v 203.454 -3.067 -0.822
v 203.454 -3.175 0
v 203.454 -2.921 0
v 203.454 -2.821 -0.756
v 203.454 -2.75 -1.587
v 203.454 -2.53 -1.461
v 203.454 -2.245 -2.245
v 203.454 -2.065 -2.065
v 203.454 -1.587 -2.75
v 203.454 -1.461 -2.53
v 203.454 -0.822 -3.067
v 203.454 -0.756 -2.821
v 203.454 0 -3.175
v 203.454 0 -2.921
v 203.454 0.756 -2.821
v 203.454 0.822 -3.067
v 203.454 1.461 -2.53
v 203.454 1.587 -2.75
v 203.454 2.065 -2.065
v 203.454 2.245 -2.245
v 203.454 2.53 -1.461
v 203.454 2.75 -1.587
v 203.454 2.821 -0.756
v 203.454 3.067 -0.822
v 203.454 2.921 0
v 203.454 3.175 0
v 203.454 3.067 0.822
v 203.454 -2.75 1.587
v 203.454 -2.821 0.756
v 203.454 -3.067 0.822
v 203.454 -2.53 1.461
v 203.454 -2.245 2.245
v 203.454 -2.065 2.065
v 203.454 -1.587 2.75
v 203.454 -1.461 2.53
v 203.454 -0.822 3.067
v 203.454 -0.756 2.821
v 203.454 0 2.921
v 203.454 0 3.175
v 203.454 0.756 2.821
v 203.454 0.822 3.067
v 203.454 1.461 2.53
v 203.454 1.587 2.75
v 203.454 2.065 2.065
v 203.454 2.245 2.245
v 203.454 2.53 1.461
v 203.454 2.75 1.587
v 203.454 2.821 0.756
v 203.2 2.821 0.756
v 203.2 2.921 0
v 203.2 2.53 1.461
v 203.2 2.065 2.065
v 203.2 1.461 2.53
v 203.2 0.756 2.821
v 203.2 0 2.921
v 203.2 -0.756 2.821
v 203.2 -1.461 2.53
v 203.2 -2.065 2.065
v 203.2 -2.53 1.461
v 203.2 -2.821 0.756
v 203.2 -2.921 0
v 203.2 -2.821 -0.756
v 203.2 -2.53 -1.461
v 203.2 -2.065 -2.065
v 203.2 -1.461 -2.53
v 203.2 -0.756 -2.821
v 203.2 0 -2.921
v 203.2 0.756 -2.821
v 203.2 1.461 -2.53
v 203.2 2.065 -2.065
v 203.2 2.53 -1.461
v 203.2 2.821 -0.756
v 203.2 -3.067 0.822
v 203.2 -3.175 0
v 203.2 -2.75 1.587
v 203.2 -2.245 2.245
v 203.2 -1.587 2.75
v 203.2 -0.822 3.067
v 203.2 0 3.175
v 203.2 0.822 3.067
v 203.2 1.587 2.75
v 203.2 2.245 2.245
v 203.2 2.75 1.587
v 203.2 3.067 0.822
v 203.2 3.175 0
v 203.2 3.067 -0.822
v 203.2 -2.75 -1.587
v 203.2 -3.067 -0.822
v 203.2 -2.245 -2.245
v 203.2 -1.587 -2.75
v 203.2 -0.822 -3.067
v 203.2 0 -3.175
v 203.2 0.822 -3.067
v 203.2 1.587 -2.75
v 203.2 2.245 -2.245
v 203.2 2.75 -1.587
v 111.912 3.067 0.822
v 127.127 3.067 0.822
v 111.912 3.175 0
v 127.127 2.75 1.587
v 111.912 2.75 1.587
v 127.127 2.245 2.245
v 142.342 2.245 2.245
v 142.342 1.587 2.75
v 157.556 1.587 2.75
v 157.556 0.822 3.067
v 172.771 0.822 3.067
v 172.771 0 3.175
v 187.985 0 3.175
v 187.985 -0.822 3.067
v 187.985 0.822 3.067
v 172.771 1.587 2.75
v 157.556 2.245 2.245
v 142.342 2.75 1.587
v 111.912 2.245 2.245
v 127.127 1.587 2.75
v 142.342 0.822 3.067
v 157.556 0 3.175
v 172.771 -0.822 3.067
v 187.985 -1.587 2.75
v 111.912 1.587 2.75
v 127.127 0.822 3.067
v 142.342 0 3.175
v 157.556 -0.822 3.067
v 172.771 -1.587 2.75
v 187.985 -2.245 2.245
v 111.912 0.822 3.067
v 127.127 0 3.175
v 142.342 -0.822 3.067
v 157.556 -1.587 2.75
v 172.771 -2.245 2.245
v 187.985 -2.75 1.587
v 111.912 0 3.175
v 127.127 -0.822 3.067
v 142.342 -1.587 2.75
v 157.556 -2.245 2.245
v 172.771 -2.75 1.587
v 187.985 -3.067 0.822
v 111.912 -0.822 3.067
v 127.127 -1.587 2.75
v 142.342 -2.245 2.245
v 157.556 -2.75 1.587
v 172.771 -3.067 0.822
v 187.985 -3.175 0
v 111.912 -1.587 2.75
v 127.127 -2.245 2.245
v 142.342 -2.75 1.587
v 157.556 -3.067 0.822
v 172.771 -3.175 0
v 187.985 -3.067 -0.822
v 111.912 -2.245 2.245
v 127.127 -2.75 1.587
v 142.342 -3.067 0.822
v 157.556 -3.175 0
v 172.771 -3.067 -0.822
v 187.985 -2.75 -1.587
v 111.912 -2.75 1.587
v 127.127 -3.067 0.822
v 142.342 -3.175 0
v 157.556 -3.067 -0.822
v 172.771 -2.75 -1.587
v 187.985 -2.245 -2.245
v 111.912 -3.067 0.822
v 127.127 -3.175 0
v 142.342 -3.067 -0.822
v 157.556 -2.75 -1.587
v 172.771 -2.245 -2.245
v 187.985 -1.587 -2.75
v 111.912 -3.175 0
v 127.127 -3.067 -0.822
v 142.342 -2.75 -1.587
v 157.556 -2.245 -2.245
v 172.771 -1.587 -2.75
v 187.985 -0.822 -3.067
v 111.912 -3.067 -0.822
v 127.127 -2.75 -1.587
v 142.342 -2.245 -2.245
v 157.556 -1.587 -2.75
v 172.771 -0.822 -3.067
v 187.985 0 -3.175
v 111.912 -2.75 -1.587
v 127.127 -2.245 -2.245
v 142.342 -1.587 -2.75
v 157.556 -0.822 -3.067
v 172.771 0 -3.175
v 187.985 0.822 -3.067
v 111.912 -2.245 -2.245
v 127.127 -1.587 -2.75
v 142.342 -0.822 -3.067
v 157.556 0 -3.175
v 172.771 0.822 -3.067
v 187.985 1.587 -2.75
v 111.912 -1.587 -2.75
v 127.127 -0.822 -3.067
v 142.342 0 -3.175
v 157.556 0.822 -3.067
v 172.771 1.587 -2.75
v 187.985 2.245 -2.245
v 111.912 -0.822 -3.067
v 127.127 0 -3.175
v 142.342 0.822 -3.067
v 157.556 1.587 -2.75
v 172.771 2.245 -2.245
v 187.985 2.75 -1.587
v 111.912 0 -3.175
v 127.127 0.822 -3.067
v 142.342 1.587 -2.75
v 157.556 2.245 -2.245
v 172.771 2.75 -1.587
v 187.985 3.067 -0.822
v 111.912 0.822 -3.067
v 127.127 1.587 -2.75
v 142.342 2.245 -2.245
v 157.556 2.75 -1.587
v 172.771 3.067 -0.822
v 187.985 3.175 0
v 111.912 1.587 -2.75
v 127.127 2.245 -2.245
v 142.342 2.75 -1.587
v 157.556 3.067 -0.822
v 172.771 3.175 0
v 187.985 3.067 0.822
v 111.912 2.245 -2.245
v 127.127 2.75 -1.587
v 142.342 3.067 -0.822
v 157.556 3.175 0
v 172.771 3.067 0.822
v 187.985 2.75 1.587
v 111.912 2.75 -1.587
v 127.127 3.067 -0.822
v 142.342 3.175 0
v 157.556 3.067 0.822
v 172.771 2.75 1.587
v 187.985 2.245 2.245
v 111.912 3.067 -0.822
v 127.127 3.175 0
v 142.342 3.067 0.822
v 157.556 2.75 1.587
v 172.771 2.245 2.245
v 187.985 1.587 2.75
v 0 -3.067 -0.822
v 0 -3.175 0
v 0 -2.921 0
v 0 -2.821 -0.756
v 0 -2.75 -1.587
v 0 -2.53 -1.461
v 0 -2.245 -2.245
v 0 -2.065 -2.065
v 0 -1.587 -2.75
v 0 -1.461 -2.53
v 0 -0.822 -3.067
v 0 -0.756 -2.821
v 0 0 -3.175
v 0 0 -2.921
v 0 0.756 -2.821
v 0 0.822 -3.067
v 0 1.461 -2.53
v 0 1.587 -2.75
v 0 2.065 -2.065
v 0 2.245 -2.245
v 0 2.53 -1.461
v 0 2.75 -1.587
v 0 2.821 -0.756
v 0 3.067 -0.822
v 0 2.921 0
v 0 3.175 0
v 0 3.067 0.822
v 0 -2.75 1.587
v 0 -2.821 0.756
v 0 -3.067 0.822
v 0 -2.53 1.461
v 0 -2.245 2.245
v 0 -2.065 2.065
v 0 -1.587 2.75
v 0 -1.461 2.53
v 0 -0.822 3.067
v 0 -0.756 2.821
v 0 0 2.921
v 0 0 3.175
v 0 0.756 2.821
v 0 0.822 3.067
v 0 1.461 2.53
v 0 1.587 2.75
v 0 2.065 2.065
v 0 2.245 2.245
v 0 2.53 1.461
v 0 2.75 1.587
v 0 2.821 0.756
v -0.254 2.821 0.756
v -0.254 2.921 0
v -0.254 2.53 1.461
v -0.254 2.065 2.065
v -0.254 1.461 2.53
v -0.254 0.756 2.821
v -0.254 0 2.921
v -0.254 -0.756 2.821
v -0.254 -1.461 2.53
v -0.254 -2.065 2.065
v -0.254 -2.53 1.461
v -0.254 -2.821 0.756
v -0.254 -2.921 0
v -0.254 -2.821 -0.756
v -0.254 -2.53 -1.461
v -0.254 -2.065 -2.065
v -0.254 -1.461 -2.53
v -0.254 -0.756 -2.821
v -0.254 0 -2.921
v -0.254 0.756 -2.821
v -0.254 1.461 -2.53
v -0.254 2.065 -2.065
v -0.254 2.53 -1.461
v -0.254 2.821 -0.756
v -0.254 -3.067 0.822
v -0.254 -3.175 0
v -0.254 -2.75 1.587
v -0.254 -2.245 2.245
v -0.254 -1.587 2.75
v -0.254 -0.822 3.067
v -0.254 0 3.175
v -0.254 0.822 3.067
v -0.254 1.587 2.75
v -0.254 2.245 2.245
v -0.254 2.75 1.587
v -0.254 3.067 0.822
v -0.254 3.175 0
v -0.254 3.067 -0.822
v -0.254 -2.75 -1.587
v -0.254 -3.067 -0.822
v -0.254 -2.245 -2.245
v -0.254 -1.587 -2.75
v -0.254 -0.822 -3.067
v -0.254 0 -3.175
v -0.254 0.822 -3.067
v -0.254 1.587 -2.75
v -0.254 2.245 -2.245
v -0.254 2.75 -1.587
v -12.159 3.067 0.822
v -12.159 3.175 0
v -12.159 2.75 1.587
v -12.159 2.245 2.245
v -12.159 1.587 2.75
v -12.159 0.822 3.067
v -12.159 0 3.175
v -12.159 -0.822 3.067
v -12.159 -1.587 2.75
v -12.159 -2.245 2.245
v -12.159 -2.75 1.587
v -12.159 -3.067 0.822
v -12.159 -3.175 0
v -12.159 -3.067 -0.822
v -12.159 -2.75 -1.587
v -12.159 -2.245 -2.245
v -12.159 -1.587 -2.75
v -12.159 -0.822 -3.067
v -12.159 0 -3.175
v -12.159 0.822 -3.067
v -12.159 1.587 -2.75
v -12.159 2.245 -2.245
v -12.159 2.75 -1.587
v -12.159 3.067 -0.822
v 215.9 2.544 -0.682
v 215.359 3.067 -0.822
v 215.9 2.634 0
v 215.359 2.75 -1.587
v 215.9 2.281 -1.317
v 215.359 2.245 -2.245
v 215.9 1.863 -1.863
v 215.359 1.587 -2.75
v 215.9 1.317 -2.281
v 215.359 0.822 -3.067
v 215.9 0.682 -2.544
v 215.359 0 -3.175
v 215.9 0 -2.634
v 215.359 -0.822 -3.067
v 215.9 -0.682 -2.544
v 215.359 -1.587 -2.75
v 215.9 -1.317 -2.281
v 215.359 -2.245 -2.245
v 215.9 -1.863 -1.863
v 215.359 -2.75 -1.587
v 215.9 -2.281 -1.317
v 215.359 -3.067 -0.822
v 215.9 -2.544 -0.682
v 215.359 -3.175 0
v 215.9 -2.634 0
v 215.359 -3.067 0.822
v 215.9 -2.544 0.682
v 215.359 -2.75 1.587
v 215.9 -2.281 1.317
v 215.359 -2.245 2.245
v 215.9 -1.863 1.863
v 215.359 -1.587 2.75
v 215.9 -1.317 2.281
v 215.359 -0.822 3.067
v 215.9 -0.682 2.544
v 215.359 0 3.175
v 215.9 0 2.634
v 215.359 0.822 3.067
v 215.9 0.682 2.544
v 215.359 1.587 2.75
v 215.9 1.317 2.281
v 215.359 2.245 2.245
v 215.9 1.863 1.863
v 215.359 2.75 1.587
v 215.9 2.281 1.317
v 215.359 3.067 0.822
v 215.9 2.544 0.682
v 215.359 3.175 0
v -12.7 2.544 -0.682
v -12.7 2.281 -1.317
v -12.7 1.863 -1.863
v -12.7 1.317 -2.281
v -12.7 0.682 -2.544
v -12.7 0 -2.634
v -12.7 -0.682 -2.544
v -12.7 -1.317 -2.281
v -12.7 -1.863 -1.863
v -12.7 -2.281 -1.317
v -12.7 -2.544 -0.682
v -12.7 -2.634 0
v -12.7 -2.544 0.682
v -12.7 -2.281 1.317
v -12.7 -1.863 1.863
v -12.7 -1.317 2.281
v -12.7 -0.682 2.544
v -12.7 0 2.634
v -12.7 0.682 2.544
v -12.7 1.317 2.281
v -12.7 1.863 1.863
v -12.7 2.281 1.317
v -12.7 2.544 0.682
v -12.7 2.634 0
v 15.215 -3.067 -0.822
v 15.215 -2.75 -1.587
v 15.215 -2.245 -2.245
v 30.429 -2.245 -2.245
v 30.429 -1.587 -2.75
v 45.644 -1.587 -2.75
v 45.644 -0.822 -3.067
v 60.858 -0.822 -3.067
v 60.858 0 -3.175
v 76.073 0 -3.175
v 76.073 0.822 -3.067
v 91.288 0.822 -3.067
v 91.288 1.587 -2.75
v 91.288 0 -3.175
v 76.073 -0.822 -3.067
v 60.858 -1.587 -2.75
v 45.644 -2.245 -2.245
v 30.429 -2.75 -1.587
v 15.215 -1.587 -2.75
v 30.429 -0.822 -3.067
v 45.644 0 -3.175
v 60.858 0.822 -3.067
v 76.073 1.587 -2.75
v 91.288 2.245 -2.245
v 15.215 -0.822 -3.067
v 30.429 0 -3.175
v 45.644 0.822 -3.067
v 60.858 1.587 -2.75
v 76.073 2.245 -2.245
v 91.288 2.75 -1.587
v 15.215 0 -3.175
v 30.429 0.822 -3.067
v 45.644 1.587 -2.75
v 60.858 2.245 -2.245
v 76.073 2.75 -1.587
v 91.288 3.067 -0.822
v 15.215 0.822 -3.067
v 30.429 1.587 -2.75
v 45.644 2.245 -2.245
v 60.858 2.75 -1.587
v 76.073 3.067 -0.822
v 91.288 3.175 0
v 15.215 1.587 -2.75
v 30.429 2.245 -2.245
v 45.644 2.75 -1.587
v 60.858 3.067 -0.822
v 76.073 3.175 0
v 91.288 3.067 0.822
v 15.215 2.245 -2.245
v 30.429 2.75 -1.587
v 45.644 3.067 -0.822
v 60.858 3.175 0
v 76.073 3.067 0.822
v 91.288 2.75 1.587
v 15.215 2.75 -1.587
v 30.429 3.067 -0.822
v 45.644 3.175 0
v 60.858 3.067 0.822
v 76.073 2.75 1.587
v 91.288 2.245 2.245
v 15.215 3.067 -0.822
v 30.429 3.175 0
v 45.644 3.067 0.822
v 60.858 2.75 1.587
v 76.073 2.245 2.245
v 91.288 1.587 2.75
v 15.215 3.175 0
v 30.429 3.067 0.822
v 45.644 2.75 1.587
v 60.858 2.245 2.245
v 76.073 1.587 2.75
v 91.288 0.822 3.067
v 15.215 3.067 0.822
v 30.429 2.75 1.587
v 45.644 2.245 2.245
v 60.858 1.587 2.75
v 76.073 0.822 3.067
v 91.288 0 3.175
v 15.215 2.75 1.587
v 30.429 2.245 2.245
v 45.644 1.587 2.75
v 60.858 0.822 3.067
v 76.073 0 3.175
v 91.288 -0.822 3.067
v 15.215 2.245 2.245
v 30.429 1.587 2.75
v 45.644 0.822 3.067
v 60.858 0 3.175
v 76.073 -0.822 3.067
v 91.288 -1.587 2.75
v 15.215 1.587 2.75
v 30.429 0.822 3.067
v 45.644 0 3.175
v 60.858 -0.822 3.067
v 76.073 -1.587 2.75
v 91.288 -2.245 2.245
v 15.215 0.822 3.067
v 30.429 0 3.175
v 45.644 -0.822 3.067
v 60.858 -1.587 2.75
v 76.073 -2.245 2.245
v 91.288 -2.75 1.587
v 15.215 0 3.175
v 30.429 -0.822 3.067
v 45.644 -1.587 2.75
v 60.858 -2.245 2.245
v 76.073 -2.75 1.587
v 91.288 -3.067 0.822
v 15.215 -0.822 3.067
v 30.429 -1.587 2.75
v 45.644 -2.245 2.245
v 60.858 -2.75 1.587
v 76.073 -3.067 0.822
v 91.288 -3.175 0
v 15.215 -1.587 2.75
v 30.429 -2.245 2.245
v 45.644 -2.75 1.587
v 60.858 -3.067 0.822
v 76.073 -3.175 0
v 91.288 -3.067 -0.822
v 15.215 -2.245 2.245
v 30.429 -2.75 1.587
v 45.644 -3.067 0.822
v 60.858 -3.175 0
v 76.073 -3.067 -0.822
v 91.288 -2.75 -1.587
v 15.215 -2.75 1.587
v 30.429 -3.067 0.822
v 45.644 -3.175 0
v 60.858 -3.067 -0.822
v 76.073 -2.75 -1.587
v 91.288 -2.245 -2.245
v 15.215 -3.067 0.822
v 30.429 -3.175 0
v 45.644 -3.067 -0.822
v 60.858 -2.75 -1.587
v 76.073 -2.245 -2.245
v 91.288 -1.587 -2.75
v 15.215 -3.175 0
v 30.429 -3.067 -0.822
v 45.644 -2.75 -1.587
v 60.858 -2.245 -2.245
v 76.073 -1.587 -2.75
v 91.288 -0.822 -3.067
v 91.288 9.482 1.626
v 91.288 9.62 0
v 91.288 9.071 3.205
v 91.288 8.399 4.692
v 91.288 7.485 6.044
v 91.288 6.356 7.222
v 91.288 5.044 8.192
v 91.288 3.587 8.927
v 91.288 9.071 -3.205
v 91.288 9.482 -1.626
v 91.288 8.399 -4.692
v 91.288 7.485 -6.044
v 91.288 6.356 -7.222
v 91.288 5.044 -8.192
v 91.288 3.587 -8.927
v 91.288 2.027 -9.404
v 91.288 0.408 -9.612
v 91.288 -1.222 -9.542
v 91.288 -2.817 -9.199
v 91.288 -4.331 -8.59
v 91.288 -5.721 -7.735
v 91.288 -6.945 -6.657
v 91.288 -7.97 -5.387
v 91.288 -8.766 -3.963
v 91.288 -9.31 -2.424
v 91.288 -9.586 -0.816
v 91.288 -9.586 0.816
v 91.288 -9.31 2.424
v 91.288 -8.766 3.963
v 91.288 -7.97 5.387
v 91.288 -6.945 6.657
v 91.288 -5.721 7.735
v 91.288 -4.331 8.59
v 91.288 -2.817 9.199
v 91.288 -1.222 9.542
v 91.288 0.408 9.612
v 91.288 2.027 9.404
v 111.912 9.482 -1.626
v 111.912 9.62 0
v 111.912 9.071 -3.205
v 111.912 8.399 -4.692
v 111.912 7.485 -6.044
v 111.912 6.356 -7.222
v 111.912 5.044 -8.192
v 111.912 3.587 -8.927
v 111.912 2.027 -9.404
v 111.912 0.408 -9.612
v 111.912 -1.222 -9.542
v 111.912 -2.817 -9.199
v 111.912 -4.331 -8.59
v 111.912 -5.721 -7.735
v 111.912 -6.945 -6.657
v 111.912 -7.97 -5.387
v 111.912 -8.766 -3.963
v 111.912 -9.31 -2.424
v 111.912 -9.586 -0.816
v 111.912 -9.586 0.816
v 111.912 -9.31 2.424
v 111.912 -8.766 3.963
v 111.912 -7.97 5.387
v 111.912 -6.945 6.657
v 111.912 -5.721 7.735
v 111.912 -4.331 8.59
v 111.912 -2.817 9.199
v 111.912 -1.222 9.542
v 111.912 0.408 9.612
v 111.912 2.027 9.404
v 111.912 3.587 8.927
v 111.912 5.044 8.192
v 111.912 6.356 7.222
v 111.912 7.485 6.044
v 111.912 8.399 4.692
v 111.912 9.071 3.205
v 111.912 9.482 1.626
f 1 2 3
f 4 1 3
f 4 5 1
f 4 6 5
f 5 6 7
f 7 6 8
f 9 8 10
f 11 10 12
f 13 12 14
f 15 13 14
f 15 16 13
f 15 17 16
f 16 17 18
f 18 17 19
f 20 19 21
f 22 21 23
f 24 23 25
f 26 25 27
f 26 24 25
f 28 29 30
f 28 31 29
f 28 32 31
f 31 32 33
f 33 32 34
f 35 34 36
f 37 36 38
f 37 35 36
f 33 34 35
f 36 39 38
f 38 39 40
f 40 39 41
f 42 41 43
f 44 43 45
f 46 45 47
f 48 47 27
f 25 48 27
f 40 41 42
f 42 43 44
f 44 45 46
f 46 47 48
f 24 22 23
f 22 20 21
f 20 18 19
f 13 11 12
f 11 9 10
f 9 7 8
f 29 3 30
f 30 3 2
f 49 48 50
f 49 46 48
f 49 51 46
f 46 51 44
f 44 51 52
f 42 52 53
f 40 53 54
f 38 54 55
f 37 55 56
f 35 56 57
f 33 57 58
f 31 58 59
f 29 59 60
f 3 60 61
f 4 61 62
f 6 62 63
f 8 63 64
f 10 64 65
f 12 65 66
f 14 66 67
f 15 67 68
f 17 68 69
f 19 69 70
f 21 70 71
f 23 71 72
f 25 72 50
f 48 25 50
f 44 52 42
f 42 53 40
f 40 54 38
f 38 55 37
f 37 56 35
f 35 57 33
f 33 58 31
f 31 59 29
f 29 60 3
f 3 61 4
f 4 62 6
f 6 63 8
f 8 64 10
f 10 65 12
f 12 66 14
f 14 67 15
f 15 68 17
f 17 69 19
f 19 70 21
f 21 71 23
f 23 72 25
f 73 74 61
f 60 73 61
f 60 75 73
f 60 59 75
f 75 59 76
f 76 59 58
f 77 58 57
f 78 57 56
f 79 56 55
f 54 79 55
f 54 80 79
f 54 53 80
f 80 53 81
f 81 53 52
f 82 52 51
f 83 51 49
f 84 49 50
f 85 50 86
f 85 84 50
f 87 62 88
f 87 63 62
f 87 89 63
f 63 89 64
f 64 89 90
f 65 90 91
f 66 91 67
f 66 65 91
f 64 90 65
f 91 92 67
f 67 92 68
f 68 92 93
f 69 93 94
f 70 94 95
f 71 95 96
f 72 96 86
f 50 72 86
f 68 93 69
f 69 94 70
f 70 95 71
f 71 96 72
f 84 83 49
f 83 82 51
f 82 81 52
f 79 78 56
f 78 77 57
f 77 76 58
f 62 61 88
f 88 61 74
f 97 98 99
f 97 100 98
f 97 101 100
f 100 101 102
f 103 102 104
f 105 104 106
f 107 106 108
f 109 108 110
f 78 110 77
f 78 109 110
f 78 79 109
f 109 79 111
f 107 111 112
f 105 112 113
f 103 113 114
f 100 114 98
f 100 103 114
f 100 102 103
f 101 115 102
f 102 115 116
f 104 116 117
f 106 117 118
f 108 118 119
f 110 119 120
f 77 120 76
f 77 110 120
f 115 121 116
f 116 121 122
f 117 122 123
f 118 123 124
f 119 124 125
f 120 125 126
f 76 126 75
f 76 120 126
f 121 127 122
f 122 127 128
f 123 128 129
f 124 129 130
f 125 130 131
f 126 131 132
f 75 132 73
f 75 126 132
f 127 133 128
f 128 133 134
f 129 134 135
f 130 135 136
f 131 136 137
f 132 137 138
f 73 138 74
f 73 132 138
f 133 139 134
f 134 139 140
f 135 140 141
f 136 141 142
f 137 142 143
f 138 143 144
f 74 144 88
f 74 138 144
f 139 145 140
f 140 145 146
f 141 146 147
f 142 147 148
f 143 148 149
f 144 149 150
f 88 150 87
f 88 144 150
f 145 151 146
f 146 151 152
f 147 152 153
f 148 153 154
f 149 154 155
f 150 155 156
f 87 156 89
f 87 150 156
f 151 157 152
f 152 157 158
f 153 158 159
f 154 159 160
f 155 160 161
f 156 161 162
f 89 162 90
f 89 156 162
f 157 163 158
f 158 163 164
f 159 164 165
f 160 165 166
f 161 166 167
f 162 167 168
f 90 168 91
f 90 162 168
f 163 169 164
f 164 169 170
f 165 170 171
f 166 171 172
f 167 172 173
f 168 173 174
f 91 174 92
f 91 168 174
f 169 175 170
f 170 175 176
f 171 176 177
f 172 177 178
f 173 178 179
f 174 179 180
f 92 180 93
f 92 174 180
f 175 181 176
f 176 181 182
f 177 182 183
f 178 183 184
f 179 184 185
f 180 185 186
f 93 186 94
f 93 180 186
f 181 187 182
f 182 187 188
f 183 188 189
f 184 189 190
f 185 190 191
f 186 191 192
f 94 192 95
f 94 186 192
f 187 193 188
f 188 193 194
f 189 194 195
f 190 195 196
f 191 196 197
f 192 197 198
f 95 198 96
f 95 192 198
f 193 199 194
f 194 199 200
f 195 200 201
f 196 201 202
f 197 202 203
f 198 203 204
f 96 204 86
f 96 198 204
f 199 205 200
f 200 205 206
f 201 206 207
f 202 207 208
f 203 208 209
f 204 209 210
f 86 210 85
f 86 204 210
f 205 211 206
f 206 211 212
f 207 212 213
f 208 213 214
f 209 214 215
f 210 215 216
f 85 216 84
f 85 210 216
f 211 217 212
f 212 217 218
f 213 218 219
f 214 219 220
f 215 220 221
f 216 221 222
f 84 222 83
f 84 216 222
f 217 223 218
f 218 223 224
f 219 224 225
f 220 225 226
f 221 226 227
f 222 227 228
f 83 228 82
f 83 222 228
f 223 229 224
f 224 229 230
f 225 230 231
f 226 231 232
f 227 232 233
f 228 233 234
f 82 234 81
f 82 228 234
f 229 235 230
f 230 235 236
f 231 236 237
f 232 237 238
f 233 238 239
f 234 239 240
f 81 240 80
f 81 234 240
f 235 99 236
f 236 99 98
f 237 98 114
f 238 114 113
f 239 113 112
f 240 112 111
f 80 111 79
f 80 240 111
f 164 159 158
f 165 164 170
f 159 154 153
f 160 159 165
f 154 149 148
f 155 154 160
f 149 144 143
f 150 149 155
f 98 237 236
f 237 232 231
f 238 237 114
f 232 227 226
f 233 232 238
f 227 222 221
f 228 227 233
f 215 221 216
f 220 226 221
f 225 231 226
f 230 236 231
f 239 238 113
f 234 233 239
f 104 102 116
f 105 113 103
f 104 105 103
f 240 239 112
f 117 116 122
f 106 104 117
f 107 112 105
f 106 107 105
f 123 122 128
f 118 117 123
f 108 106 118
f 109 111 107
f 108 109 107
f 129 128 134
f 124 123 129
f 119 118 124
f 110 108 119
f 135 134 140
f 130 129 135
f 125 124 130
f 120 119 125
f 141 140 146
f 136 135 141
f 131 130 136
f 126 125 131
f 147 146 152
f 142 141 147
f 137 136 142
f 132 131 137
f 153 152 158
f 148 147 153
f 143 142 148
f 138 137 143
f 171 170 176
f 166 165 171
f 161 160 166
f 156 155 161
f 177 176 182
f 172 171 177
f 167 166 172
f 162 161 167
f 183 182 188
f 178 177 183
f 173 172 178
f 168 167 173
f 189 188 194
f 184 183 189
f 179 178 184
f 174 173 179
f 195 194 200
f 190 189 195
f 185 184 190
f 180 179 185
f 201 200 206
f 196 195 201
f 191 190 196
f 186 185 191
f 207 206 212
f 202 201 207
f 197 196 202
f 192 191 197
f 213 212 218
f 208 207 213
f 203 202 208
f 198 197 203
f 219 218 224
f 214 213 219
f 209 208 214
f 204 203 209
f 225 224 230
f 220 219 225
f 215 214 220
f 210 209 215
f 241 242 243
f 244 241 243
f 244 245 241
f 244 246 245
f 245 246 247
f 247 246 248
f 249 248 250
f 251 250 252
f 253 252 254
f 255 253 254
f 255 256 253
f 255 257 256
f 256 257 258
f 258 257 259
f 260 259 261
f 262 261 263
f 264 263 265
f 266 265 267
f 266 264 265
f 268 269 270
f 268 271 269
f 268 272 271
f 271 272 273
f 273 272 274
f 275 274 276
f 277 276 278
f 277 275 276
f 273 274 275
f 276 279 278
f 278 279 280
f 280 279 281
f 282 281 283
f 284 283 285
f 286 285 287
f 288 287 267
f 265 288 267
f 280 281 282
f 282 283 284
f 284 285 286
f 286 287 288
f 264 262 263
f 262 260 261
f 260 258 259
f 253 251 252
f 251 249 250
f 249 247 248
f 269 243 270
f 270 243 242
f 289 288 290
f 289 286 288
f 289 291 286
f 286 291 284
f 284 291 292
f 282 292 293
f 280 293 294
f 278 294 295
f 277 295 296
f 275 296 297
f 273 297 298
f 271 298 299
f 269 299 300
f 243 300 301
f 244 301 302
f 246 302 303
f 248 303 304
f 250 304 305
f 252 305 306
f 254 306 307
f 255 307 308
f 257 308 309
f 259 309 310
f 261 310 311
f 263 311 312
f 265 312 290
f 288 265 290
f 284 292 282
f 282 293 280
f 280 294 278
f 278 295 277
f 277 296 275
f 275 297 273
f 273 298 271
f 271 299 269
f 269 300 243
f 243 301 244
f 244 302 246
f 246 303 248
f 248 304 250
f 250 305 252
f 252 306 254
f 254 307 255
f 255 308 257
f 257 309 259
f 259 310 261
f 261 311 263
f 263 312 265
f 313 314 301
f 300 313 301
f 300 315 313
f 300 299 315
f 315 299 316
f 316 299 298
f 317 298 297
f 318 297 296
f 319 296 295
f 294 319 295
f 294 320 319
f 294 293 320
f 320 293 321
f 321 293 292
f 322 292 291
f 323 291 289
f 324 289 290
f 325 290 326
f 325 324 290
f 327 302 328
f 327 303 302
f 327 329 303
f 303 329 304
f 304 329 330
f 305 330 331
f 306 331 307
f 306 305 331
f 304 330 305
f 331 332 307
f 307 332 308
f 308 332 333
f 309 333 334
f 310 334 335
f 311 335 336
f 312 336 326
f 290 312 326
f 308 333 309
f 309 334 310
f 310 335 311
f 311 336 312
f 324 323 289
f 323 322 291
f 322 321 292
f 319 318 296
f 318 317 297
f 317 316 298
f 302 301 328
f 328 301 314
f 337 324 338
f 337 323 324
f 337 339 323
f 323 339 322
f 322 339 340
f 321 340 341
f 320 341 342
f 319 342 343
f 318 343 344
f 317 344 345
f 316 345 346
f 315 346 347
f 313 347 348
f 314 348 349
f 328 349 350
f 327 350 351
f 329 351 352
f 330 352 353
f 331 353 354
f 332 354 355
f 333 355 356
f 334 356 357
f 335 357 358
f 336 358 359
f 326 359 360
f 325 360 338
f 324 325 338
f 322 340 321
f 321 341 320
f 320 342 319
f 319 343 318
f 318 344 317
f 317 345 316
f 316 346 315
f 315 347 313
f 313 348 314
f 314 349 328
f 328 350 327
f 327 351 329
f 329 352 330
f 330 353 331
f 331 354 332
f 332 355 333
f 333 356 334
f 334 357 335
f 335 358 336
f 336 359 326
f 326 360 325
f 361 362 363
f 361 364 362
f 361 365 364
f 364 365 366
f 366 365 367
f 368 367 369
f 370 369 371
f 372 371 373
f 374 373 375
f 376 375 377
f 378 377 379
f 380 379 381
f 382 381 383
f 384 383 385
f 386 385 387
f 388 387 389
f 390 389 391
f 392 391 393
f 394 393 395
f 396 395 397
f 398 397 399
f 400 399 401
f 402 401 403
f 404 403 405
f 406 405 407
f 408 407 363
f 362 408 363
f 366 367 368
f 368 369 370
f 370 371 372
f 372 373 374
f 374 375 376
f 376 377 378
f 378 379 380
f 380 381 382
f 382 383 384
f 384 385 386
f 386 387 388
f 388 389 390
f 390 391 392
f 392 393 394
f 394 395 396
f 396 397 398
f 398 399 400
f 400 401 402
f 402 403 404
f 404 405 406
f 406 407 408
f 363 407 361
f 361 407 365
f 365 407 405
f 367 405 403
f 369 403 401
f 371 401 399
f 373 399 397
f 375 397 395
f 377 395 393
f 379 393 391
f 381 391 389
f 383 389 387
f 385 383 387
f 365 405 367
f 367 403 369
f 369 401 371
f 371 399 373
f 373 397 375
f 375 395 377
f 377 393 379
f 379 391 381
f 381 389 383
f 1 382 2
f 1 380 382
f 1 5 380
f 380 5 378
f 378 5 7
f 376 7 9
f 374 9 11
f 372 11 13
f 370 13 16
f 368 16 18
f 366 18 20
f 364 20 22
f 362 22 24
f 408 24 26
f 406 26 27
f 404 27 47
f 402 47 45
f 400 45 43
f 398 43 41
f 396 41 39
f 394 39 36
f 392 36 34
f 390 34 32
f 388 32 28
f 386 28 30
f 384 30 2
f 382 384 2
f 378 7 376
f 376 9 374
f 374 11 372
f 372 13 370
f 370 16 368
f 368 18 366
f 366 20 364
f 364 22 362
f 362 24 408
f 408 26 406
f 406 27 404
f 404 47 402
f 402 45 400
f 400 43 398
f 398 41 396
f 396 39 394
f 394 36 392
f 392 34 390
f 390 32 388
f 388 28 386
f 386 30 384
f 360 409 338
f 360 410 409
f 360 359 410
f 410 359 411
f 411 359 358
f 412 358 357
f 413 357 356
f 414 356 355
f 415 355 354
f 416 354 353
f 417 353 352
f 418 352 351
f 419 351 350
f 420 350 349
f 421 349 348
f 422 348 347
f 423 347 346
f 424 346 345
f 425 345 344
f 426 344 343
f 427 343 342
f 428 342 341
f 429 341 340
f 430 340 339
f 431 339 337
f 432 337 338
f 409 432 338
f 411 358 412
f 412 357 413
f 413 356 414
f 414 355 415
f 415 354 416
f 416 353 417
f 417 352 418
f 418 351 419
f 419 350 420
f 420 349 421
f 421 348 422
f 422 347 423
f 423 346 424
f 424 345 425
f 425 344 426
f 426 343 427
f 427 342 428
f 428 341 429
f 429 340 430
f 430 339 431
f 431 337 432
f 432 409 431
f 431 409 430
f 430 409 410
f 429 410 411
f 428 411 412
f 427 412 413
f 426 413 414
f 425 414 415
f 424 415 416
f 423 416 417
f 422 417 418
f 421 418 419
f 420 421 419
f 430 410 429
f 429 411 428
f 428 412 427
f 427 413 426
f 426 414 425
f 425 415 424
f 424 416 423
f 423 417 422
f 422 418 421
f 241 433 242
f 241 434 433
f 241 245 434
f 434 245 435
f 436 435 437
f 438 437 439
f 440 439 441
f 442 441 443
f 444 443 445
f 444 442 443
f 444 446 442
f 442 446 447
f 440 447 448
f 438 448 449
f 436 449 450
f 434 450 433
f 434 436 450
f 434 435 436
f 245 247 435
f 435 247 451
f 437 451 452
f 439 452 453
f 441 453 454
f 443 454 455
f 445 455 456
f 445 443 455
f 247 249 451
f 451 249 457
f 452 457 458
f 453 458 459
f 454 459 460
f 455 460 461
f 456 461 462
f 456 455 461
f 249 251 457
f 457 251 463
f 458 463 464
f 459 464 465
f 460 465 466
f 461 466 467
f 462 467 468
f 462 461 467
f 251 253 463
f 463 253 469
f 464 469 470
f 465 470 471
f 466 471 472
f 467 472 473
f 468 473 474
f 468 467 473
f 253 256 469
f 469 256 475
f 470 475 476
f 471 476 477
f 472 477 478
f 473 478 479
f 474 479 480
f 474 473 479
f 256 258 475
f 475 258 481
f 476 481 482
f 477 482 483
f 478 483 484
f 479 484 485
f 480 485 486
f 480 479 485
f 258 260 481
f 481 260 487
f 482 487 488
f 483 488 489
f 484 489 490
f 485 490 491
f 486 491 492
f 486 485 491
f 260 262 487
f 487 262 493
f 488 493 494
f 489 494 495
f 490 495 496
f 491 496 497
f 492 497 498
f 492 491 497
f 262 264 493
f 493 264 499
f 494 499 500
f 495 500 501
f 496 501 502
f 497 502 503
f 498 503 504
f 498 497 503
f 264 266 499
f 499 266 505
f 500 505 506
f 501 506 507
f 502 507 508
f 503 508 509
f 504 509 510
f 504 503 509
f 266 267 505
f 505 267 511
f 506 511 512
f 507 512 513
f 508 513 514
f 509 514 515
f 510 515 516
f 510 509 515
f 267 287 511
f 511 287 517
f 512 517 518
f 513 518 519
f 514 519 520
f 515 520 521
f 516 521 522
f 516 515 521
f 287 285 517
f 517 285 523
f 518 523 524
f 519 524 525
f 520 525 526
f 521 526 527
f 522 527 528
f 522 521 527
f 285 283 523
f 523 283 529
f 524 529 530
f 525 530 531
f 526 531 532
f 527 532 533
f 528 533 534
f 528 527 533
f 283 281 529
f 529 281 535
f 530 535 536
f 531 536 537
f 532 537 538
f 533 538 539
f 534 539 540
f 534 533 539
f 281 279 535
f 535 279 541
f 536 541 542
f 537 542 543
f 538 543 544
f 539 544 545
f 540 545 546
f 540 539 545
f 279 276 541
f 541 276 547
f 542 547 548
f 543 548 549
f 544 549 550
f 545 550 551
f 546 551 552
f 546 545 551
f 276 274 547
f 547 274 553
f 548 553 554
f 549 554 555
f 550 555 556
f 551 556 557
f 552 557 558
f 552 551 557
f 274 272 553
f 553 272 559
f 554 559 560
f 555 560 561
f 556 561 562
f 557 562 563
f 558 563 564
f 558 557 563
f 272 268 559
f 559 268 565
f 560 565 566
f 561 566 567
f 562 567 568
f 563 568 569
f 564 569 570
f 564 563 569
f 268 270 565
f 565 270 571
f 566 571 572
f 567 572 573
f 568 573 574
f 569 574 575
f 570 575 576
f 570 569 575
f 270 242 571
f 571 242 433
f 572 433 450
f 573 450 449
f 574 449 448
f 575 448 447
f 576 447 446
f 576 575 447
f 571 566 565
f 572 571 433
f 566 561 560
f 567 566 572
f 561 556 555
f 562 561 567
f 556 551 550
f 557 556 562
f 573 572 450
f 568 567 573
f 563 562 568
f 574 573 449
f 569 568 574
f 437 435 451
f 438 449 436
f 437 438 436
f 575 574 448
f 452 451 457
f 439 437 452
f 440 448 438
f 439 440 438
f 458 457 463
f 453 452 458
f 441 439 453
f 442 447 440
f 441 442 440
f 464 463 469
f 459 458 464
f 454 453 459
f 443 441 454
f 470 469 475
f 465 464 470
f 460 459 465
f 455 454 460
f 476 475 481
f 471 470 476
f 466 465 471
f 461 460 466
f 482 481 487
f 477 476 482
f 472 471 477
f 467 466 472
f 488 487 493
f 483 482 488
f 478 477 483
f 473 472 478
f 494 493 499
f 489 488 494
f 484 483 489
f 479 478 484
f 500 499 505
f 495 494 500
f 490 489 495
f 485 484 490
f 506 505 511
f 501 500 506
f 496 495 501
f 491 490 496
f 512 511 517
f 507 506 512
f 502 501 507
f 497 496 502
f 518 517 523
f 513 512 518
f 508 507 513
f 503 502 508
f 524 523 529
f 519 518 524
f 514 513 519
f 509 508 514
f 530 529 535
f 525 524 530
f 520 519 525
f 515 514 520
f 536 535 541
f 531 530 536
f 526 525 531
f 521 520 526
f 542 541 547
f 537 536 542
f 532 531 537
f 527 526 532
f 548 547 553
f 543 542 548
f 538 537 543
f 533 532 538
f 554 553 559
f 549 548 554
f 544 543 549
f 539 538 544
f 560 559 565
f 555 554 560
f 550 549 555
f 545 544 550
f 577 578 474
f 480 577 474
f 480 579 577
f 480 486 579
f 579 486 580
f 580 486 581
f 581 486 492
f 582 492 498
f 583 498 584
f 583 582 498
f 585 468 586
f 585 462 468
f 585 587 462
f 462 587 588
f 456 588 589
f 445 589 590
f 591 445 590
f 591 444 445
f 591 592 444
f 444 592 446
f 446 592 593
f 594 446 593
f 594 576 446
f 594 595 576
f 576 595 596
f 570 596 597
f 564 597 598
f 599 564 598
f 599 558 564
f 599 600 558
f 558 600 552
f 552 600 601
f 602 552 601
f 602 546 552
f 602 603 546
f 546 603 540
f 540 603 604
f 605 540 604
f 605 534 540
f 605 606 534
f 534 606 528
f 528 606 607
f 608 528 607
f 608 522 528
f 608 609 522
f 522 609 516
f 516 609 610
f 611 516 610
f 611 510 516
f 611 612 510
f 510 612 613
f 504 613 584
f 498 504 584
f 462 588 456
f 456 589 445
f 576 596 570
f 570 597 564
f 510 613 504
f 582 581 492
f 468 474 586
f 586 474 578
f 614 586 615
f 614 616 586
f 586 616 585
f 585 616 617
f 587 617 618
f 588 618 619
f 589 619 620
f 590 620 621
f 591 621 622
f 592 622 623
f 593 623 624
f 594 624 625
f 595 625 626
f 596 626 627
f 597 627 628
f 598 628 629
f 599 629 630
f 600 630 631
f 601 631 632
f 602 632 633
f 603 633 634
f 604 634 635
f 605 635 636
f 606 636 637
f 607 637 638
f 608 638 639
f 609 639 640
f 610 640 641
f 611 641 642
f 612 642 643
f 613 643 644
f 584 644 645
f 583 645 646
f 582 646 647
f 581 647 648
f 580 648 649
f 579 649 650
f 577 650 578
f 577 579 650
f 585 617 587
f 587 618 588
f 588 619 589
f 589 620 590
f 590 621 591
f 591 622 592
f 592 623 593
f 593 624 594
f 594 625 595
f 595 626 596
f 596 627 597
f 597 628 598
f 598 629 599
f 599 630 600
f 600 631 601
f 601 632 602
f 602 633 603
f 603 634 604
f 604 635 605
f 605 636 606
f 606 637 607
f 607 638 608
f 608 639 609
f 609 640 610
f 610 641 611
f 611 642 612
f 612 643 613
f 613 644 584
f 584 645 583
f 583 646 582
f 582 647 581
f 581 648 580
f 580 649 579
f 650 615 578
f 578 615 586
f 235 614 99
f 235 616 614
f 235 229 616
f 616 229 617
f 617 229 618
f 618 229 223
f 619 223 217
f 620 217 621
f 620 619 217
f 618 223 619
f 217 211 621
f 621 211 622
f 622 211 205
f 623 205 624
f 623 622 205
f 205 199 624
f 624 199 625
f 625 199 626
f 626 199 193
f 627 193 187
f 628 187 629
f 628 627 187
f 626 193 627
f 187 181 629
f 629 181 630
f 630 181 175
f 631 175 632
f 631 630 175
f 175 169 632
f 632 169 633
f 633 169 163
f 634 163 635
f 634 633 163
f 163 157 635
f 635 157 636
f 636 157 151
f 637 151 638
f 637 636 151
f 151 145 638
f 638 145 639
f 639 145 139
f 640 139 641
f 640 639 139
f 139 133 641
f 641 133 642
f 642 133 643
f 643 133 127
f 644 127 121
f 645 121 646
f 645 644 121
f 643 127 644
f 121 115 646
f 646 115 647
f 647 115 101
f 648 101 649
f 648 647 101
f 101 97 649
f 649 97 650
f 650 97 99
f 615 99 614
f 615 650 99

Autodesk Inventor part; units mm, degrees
sketch "Sketch_1" plane through (0, 0, 0) normal (0, 0, 1) x (1, 0, 0)
  line L0 (111.9124, 0) -> (0, 0)
  line L1 (0, 0) -> (0, 3.175)
  line L2 (0, 3.175) -> (91.2876, 3.175)
  line L3 (91.2876, 3.175) -> (91.2876, 9.6203)
  line L4 (91.2876, 9.6203) -> (111.9124, 9.6203)
  line L5 (111.9124, 9.6203) -> (111.9124, 0)
  line L6 (111.9124, 0) -> (0, 0)
revolve "Revolution1" add sketch "Sketch_1" angle 360 about axis through (111.9124, 0, 0) along (1, 0, 0)
sketch "Sketch_3" plane through (0, 0, 0) normal (0, 0, 1) x (1, 0, 0)
  line L0 (0, 0) -> (-12.7, 0)
  line L1 (-12.7, 0) -> (-12.7, 2.634)
  line L2 (-12.7, 2.634) -> (-12.159, 3.175)
  line L3 (-12.159, 3.175) -> (0, 3.175)
  line L4 (0, 3.175) -> (0, 0)
  line L5 (0, 0) -> (-12.7, 0)
revolve "Revolution2" add sketch "Sketch_3" angle 360 about axis through (0, 0, 0) along (1, 0, 0)
sketch "Sketch_6" plane through (0, 0, 0) normal (0, 0, 1) x (1, 0, 0)
  line L0 (203.2, 0) -> (111.9124, 0)
  line L1 (111.9124, 0) -> (111.9124, 3.175)
  line L2 (111.9124, 3.175) -> (203.2, 3.175)
  line L3 (203.2, 3.175) -> (203.2, 0)
  line L4 (203.2, 0) -> (111.9124, 0)
revolve "Revolution3" add sketch "Sketch_6" angle 360 about axis through (203.2, 0, 0) along (1, 0, 0)
sketch "Sketch_7" plane through (0, 0, 0) normal (0, 0, 1) x (1, 0, 0)
  line L0 (215.9, 0) -> (203.2, 0)
  line L1 (203.2, 0) -> (203.2, 3.175)
  line L2 (203.2, 3.175) -> (215.359, 3.175)
  line L3 (215.359, 3.175) -> (215.9, 2.634)
  line L4 (215.9, 2.634) -> (215.9, 0)
  line L5 (215.9, 0) -> (203.2, 0)
revolve "Revolution4" add sketch "Sketch_7" angle 360 about axis through (215.9, 0, 0) along (1, 0, 0)
sketch "Sketch_30" plane through (0, 0, 0) normal (0, 0, 1) x (1, 0, 0)
  line L0 (0, 0) -> (-0.254, 0)
  line L1 (-0.254, 3.429) -> (-0.254, 2.921)
  line L2 (-0.254, 2.921) -> (0, 2.921)
  line L3 (0, 2.921) -> (0, 3.429)
  line L4 (0, 3.429) -> (-0.254, 3.429)
revolve "Revolution5" cut sketch "Sketch_30" angle 360 about axis through (0, 0, 0) along (1, 0, 0)
sketch "Sketch_40" plane through (0, 0, 0) normal (0, 0, 1) x (1, 0, 0)
  line L0 (203.454, 0) -> (203.2, 0)
  line L1 (203.2, 3.429) -> (203.2, 2.921)
  line L2 (203.2, 2.921) -> (203.454, 2.921)
  line L3 (203.454, 2.921) -> (203.454, 3.429)
  line L4 (203.454, 3.429) -> (203.2, 3.429)
revolve "Revolution6" cut sketch "Sketch_40" angle 360 about axis through (203.454, 0, 0) along (1, 0, 0)
ref_plane "rod_cp_XY" through (0, 0, 0) normal (1, 0, 0) x (0, 0, -1)
ref_plane "rod_cp_YZ" through (0, 0, 0) normal (0, 0, -1) x (0, 1, 0)
ref_plane "rod_cp_ZX" through (0, 0, 0) normal (0, 1, 0) x (1, 0, 0)
ref_plane "to_rod_clevis_XY" through (-12.7, 0, 0) normal (1, 0, 0) x (0, 0, -1)
ref_plane "to_rod_clevis_YZ" through (-12.7, 0, 0) normal (0, 0, -1) x (0, 1, 0)
ref_plane "to_rod_clevis_ZX" through (-12.7, 0, 0) normal (0, 1, 0) x (1, 0, 0)
ref_plane "rl2_XY" through (0, 0, 0) normal (1, 0, 0) x (0, 0, -1)
ref_plane "rl2_YZ" through (0, 0, 0) normal (0, 0, -1) x (0, 1, 0)
ref_plane "rl2_ZX" through (0, 0, 0) normal (0, 1, 0) x (1, 0, 0)
ref_plane "rl1_XY" through (-12.7, 0, 0) normal (1, 0, 0) x (0, 0, -1)
ref_plane "rl1_YZ" through (-12.7, 0, 0) normal (0, 0, -1) x (0, 1, 0)
ref_plane "rl1_ZX" through (-12.7, 0, 0) normal (0, 1, 0) x (1, 0, 0)
ref_plane "rl1_der_XY" through (215.9, 0, 0) normal (1, 0, 0) x (0, 0, -1)
ref_plane "rl1_der_YZ" through (215.9, 0, 0) normal (0, 0, -1) x (0, 1, 0)
ref_plane "rl1_der_ZX" through (215.9, 0, 0) normal (0, 1, 0) x (1, 0, 0)
ref_plane "rl2_der_XY" through (203.2, 0, 0) normal (1, 0, 0) x (0, 0, -1)
ref_plane "rl2_der_YZ" through (203.2, 0, 0) normal (0, 0, -1) x (0, 1, 0)
ref_plane "rl2_der_ZX" through (203.2, 0, 0) normal (0, 1, 0) x (1, 0, 0)
ref_plane "thd1_XY" through (-12.7, 3.175, 0) normal (1, 0, 0) x (0, 0, -1)
ref_plane "thd1_YZ" through (-12.7, 3.175, 0) normal (0, 0, -1) x (0, 1, 0)
ref_plane "thd1_ZX" through (-12.7, 3.175, 0) normal (0, 1, 0) x (1, 0, 0)
ref_plane "thd2_XY" through (-12.7, -3.175, 0) normal (1, 0, 0) x (0, 0, -1)
ref_plane "thd2_YZ" through (-12.7, -3.175, 0) normal (0, 0, -1) x (0, 1, 0)
ref_plane "thd2_ZX" through (-12.7, -3.175, 0) normal (0, 1, 0) x (1, 0, 0)
ref_plane "dia1_XY" through (0, 3.175, 0) normal (1, 0, 0) x (0, 0, -1)
ref_plane "dia1_YZ" through (0, 3.175, 0) normal (0, 0, -1) x (0, 1, 0)
ref_plane "dia1_ZX" through (0, 3.175, 0) normal (0, 1, 0) x (1, 0, 0)
ref_plane "dia2_XY" through (0, -3.175, 0) normal (1, 0, 0) x (0, 0, -1)
ref_plane "dia2_YZ" through (0, -3.175, 0) normal (0, 0, -1) x (0, 1, 0)
ref_plane "dia2_ZX" through (0, -3.175, 0) normal (0, 1, 0) x (1, 0, 0)
ref_plane "stroke1_XY" through (0, 0, 0) normal (1, 0, 0) x (0, 0, -1)
ref_plane "stroke1_YZ" through (0, 0, 0) normal (0, 0, -1) x (0, 1, 0)
ref_plane "stroke1_ZX" through (0, 0, 0) normal (0, 1, 0) x (1, 0, 0)
ref_plane "dia12_XY" through (0, 0, 10.9537) normal (1, 0, 0) x (0, 0, -1)
ref_plane "dia12_YZ" through (0, 0, 10.9537) normal (0, 0, -1) x (0, 1, 0)
ref_plane "dia12_ZX" through (0, 0, 10.9537) normal (0, 1, 0) x (1, 0, 0)
ref_plane "dia22_XY" through (0, 0, -10.9537) normal (1, 0, 0) x (0, 0, -1)
ref_plane "dia22_YZ" through (0, 0, -10.9537) normal (0, 0, -1) x (0, 1, 0)
ref_plane "dia22_ZX" through (0, 0, -10.9537) normal (0, 1, 0) x (1, 0, 0)
properties part number "042-DXDE0_rod"
